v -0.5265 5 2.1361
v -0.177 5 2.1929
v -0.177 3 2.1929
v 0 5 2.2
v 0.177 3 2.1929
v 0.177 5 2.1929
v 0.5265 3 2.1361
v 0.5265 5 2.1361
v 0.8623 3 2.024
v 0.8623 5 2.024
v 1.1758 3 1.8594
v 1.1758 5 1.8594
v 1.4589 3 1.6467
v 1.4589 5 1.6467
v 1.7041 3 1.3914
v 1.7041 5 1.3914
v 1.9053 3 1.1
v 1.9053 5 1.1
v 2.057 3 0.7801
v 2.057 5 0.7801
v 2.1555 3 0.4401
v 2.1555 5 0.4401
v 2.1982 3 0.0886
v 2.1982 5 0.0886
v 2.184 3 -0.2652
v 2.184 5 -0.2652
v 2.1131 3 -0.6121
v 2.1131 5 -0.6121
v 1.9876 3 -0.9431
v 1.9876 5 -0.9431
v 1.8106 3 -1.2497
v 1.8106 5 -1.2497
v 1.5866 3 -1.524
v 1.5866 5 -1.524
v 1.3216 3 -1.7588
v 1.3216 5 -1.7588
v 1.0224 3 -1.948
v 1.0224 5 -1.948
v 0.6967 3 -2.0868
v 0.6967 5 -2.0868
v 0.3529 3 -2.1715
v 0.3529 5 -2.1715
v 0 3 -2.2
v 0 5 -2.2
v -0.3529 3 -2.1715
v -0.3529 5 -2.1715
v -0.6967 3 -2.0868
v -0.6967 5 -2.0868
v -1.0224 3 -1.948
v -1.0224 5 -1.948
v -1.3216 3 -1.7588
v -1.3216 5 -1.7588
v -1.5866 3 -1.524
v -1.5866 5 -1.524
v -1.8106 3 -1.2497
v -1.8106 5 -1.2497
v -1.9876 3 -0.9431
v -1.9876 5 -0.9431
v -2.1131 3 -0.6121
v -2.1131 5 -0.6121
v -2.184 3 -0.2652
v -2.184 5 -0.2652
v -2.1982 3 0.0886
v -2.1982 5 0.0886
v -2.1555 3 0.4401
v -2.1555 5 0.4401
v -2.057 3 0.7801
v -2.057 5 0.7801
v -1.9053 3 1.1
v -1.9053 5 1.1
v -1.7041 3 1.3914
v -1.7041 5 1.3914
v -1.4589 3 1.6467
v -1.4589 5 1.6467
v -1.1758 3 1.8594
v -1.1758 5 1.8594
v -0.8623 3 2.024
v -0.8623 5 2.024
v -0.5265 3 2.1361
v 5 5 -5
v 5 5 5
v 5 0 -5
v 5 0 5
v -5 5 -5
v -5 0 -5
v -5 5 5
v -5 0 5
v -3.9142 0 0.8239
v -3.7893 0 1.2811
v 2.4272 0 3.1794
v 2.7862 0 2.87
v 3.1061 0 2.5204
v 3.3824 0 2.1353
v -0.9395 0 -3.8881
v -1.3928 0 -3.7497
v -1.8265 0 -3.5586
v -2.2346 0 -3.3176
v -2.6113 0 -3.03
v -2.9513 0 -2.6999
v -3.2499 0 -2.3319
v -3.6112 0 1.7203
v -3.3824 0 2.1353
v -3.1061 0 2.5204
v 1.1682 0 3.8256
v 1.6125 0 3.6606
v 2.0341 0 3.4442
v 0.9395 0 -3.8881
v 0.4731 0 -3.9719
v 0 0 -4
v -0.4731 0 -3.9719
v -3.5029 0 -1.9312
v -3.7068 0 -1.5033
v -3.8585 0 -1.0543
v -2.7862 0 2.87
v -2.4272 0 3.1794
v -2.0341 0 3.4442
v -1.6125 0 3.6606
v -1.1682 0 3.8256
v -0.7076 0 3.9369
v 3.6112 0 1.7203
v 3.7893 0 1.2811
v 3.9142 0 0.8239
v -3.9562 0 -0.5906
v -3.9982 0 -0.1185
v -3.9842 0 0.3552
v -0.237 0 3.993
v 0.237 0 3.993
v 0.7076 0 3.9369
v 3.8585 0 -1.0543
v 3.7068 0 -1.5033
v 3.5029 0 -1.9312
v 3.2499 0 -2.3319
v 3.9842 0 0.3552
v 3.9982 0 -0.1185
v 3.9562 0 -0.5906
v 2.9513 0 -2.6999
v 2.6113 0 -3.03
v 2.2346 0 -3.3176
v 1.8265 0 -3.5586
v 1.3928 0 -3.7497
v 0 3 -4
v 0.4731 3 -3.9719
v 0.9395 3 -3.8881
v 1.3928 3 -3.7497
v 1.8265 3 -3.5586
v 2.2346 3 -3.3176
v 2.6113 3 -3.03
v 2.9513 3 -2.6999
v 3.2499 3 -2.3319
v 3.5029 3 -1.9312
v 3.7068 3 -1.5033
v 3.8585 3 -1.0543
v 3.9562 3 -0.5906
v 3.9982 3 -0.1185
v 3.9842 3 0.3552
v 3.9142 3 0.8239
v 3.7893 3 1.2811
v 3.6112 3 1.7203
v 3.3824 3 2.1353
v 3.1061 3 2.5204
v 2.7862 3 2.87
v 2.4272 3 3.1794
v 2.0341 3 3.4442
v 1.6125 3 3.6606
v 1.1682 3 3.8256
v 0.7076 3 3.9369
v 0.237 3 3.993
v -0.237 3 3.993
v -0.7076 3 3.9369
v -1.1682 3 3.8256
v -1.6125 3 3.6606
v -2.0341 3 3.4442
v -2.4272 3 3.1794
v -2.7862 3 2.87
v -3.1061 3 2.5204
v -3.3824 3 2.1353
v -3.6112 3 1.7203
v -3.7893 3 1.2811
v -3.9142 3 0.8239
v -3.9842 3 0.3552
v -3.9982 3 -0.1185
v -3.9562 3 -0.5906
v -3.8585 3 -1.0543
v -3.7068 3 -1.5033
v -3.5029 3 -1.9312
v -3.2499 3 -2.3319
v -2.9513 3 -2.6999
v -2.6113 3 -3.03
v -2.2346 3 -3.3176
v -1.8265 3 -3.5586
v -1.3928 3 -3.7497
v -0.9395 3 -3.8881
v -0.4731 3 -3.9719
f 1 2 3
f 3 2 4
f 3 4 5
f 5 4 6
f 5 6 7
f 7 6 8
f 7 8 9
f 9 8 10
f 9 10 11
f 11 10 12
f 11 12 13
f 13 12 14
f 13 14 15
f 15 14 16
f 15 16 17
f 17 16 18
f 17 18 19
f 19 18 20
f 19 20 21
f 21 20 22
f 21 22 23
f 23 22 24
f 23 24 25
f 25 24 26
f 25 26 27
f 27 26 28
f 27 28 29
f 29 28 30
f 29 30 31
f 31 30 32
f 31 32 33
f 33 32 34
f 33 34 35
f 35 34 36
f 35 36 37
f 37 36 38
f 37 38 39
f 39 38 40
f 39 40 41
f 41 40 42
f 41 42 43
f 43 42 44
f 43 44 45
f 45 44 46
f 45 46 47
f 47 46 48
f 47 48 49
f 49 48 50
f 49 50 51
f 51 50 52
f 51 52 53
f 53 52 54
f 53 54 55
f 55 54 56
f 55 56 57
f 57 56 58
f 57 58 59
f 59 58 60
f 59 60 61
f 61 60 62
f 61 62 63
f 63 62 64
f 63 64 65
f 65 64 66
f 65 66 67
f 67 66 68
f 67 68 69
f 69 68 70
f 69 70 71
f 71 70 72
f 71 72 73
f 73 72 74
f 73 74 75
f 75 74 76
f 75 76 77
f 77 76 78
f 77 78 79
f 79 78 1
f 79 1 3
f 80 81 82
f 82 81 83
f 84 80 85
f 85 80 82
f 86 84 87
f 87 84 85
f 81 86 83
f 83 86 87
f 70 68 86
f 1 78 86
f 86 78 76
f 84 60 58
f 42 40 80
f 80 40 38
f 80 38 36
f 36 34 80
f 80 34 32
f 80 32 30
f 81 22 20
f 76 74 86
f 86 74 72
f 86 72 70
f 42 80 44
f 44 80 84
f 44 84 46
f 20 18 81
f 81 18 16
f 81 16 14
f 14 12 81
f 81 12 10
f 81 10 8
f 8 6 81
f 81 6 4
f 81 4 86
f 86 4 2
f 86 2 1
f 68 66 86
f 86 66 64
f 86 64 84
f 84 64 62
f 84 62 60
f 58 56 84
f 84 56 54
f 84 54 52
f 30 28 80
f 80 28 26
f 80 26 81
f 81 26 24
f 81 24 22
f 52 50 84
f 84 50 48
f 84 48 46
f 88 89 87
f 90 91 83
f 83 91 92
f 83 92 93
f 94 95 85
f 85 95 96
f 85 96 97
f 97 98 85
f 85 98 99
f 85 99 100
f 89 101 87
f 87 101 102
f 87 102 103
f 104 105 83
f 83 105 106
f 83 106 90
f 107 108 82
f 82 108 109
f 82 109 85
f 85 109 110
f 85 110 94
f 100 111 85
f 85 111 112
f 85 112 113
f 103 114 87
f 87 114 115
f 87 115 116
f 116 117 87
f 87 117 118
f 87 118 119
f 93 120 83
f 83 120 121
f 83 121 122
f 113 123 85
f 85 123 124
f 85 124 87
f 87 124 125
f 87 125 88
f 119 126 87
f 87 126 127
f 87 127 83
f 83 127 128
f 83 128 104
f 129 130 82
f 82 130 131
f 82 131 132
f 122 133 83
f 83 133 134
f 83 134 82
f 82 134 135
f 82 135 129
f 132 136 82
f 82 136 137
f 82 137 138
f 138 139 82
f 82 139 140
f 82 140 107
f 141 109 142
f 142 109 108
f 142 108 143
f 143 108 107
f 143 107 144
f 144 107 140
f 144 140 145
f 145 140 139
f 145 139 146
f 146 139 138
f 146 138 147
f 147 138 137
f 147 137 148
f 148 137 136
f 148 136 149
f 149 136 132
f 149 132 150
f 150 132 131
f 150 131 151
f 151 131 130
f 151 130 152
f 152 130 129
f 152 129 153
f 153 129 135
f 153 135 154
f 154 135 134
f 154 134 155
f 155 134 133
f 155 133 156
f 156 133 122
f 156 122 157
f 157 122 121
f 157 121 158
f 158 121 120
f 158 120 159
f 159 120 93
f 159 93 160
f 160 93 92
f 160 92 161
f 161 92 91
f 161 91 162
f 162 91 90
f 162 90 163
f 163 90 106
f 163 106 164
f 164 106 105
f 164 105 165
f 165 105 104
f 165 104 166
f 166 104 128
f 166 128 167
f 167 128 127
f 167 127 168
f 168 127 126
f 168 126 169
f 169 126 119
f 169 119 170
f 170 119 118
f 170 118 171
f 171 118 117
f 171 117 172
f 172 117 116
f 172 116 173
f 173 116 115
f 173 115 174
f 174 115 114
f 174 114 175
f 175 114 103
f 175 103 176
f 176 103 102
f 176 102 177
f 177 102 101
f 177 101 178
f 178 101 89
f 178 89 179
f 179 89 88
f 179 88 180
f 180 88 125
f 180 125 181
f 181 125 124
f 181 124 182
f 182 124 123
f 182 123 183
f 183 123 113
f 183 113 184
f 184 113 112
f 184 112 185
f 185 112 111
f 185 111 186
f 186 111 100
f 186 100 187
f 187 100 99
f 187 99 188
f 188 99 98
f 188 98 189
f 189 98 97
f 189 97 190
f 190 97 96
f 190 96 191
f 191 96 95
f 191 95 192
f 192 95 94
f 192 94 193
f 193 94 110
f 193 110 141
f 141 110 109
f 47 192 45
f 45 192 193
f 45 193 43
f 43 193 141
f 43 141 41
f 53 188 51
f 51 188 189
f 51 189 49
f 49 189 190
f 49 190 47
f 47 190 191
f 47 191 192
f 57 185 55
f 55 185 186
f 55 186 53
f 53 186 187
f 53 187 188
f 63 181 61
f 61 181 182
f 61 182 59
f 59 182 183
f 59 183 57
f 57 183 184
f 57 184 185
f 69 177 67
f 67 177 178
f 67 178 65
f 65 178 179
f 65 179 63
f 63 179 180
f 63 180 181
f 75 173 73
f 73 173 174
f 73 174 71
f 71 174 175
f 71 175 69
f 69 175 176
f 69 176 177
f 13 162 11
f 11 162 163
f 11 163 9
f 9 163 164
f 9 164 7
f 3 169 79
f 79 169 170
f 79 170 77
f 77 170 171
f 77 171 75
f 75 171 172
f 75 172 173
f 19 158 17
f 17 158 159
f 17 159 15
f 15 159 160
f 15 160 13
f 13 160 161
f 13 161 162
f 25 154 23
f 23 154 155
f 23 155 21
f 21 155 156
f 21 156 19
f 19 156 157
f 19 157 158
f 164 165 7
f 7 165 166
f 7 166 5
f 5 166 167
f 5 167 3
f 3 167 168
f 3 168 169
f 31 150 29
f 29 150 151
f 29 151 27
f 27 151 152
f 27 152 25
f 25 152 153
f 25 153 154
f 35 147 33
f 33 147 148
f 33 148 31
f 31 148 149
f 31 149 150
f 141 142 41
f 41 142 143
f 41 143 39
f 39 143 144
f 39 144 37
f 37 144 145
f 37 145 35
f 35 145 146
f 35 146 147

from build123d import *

# Parameters (mm, degrees)
SKETCH1_W           = 10
SKETCH1_H           = 10
SKETCH1_R           = 4
SKETCH1_R_2         = 2.2
BOSS_EXTRUDE1_DEPTH = 5
SKETCH3_R           = 4
SKETCH3_R_2         = 2.2
CUT_EXTRUDE3_DEPTH  = 3


with BuildPart() as part:
    # Sketch1 → Boss-Extrude1 (new body)
    with BuildSketch(Plane(origin=(0, 0, 0), x_dir=(1, 0, 0), z_dir=(0, 1, 0))):
        Rectangle(SKETCH1_W, SKETCH1_H)
        Circle(SKETCH1_R, mode=Mode.SUBTRACT)
        Circle(SKETCH1_R)
        with Locations(Location((0, 0, 0), (0, 0, 270))):
            Circle(SKETCH1_R_2, mode=Mode.SUBTRACT)
    extrude(amount=BOSS_EXTRUDE1_DEPTH)

    # Sketch3 → Cut-Extrude3 (cut)
    with BuildSketch(Plane.XZ):
        with Locations(Location((0, 0, 0), (0, 0, 270))):
            Circle(SKETCH3_R)
        with Locations(Location((0, 0, 0), (0, 0, 270))):
            Circle(SKETCH3_R_2, mode=Mode.SUBTRACT)
    extrude(amount=-CUT_EXTRUDE3_DEPTH, mode=Mode.SUBTRACT)


solid = part.part
